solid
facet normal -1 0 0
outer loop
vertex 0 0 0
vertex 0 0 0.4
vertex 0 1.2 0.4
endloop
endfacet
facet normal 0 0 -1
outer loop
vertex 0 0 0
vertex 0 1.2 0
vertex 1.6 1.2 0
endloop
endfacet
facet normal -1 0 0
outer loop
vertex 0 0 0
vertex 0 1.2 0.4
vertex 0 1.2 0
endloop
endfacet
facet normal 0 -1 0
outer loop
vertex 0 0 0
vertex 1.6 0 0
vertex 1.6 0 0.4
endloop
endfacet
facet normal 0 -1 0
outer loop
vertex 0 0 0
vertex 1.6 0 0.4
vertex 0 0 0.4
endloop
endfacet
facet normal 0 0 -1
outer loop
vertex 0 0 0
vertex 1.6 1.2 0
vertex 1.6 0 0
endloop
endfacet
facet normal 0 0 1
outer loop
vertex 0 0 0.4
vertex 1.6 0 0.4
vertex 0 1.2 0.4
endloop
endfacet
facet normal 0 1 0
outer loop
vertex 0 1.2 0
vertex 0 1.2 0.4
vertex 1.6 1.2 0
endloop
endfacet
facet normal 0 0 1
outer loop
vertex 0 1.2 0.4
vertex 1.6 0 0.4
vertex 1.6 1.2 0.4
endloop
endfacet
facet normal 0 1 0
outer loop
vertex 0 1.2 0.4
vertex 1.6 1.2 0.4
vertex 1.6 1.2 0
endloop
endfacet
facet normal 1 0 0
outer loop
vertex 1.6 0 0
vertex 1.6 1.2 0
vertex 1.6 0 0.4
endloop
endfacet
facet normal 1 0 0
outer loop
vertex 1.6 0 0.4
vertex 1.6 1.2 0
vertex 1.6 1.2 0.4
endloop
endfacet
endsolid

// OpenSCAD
/* Warning, this is a very basic generator with a lot of approximation 
input data : [X2DFN, K7A, 1.6x1.2x0.4mm, 8, , B, C04-01260B]
generated by com.zoubworld.electronics.cad.model3d.Basic
Date : Sun Feb 15 10:50:49 CET 2026
*/

//body
color("black")
translate([0,0,0])
cube([1.6,1.2,0.4], center=false);
